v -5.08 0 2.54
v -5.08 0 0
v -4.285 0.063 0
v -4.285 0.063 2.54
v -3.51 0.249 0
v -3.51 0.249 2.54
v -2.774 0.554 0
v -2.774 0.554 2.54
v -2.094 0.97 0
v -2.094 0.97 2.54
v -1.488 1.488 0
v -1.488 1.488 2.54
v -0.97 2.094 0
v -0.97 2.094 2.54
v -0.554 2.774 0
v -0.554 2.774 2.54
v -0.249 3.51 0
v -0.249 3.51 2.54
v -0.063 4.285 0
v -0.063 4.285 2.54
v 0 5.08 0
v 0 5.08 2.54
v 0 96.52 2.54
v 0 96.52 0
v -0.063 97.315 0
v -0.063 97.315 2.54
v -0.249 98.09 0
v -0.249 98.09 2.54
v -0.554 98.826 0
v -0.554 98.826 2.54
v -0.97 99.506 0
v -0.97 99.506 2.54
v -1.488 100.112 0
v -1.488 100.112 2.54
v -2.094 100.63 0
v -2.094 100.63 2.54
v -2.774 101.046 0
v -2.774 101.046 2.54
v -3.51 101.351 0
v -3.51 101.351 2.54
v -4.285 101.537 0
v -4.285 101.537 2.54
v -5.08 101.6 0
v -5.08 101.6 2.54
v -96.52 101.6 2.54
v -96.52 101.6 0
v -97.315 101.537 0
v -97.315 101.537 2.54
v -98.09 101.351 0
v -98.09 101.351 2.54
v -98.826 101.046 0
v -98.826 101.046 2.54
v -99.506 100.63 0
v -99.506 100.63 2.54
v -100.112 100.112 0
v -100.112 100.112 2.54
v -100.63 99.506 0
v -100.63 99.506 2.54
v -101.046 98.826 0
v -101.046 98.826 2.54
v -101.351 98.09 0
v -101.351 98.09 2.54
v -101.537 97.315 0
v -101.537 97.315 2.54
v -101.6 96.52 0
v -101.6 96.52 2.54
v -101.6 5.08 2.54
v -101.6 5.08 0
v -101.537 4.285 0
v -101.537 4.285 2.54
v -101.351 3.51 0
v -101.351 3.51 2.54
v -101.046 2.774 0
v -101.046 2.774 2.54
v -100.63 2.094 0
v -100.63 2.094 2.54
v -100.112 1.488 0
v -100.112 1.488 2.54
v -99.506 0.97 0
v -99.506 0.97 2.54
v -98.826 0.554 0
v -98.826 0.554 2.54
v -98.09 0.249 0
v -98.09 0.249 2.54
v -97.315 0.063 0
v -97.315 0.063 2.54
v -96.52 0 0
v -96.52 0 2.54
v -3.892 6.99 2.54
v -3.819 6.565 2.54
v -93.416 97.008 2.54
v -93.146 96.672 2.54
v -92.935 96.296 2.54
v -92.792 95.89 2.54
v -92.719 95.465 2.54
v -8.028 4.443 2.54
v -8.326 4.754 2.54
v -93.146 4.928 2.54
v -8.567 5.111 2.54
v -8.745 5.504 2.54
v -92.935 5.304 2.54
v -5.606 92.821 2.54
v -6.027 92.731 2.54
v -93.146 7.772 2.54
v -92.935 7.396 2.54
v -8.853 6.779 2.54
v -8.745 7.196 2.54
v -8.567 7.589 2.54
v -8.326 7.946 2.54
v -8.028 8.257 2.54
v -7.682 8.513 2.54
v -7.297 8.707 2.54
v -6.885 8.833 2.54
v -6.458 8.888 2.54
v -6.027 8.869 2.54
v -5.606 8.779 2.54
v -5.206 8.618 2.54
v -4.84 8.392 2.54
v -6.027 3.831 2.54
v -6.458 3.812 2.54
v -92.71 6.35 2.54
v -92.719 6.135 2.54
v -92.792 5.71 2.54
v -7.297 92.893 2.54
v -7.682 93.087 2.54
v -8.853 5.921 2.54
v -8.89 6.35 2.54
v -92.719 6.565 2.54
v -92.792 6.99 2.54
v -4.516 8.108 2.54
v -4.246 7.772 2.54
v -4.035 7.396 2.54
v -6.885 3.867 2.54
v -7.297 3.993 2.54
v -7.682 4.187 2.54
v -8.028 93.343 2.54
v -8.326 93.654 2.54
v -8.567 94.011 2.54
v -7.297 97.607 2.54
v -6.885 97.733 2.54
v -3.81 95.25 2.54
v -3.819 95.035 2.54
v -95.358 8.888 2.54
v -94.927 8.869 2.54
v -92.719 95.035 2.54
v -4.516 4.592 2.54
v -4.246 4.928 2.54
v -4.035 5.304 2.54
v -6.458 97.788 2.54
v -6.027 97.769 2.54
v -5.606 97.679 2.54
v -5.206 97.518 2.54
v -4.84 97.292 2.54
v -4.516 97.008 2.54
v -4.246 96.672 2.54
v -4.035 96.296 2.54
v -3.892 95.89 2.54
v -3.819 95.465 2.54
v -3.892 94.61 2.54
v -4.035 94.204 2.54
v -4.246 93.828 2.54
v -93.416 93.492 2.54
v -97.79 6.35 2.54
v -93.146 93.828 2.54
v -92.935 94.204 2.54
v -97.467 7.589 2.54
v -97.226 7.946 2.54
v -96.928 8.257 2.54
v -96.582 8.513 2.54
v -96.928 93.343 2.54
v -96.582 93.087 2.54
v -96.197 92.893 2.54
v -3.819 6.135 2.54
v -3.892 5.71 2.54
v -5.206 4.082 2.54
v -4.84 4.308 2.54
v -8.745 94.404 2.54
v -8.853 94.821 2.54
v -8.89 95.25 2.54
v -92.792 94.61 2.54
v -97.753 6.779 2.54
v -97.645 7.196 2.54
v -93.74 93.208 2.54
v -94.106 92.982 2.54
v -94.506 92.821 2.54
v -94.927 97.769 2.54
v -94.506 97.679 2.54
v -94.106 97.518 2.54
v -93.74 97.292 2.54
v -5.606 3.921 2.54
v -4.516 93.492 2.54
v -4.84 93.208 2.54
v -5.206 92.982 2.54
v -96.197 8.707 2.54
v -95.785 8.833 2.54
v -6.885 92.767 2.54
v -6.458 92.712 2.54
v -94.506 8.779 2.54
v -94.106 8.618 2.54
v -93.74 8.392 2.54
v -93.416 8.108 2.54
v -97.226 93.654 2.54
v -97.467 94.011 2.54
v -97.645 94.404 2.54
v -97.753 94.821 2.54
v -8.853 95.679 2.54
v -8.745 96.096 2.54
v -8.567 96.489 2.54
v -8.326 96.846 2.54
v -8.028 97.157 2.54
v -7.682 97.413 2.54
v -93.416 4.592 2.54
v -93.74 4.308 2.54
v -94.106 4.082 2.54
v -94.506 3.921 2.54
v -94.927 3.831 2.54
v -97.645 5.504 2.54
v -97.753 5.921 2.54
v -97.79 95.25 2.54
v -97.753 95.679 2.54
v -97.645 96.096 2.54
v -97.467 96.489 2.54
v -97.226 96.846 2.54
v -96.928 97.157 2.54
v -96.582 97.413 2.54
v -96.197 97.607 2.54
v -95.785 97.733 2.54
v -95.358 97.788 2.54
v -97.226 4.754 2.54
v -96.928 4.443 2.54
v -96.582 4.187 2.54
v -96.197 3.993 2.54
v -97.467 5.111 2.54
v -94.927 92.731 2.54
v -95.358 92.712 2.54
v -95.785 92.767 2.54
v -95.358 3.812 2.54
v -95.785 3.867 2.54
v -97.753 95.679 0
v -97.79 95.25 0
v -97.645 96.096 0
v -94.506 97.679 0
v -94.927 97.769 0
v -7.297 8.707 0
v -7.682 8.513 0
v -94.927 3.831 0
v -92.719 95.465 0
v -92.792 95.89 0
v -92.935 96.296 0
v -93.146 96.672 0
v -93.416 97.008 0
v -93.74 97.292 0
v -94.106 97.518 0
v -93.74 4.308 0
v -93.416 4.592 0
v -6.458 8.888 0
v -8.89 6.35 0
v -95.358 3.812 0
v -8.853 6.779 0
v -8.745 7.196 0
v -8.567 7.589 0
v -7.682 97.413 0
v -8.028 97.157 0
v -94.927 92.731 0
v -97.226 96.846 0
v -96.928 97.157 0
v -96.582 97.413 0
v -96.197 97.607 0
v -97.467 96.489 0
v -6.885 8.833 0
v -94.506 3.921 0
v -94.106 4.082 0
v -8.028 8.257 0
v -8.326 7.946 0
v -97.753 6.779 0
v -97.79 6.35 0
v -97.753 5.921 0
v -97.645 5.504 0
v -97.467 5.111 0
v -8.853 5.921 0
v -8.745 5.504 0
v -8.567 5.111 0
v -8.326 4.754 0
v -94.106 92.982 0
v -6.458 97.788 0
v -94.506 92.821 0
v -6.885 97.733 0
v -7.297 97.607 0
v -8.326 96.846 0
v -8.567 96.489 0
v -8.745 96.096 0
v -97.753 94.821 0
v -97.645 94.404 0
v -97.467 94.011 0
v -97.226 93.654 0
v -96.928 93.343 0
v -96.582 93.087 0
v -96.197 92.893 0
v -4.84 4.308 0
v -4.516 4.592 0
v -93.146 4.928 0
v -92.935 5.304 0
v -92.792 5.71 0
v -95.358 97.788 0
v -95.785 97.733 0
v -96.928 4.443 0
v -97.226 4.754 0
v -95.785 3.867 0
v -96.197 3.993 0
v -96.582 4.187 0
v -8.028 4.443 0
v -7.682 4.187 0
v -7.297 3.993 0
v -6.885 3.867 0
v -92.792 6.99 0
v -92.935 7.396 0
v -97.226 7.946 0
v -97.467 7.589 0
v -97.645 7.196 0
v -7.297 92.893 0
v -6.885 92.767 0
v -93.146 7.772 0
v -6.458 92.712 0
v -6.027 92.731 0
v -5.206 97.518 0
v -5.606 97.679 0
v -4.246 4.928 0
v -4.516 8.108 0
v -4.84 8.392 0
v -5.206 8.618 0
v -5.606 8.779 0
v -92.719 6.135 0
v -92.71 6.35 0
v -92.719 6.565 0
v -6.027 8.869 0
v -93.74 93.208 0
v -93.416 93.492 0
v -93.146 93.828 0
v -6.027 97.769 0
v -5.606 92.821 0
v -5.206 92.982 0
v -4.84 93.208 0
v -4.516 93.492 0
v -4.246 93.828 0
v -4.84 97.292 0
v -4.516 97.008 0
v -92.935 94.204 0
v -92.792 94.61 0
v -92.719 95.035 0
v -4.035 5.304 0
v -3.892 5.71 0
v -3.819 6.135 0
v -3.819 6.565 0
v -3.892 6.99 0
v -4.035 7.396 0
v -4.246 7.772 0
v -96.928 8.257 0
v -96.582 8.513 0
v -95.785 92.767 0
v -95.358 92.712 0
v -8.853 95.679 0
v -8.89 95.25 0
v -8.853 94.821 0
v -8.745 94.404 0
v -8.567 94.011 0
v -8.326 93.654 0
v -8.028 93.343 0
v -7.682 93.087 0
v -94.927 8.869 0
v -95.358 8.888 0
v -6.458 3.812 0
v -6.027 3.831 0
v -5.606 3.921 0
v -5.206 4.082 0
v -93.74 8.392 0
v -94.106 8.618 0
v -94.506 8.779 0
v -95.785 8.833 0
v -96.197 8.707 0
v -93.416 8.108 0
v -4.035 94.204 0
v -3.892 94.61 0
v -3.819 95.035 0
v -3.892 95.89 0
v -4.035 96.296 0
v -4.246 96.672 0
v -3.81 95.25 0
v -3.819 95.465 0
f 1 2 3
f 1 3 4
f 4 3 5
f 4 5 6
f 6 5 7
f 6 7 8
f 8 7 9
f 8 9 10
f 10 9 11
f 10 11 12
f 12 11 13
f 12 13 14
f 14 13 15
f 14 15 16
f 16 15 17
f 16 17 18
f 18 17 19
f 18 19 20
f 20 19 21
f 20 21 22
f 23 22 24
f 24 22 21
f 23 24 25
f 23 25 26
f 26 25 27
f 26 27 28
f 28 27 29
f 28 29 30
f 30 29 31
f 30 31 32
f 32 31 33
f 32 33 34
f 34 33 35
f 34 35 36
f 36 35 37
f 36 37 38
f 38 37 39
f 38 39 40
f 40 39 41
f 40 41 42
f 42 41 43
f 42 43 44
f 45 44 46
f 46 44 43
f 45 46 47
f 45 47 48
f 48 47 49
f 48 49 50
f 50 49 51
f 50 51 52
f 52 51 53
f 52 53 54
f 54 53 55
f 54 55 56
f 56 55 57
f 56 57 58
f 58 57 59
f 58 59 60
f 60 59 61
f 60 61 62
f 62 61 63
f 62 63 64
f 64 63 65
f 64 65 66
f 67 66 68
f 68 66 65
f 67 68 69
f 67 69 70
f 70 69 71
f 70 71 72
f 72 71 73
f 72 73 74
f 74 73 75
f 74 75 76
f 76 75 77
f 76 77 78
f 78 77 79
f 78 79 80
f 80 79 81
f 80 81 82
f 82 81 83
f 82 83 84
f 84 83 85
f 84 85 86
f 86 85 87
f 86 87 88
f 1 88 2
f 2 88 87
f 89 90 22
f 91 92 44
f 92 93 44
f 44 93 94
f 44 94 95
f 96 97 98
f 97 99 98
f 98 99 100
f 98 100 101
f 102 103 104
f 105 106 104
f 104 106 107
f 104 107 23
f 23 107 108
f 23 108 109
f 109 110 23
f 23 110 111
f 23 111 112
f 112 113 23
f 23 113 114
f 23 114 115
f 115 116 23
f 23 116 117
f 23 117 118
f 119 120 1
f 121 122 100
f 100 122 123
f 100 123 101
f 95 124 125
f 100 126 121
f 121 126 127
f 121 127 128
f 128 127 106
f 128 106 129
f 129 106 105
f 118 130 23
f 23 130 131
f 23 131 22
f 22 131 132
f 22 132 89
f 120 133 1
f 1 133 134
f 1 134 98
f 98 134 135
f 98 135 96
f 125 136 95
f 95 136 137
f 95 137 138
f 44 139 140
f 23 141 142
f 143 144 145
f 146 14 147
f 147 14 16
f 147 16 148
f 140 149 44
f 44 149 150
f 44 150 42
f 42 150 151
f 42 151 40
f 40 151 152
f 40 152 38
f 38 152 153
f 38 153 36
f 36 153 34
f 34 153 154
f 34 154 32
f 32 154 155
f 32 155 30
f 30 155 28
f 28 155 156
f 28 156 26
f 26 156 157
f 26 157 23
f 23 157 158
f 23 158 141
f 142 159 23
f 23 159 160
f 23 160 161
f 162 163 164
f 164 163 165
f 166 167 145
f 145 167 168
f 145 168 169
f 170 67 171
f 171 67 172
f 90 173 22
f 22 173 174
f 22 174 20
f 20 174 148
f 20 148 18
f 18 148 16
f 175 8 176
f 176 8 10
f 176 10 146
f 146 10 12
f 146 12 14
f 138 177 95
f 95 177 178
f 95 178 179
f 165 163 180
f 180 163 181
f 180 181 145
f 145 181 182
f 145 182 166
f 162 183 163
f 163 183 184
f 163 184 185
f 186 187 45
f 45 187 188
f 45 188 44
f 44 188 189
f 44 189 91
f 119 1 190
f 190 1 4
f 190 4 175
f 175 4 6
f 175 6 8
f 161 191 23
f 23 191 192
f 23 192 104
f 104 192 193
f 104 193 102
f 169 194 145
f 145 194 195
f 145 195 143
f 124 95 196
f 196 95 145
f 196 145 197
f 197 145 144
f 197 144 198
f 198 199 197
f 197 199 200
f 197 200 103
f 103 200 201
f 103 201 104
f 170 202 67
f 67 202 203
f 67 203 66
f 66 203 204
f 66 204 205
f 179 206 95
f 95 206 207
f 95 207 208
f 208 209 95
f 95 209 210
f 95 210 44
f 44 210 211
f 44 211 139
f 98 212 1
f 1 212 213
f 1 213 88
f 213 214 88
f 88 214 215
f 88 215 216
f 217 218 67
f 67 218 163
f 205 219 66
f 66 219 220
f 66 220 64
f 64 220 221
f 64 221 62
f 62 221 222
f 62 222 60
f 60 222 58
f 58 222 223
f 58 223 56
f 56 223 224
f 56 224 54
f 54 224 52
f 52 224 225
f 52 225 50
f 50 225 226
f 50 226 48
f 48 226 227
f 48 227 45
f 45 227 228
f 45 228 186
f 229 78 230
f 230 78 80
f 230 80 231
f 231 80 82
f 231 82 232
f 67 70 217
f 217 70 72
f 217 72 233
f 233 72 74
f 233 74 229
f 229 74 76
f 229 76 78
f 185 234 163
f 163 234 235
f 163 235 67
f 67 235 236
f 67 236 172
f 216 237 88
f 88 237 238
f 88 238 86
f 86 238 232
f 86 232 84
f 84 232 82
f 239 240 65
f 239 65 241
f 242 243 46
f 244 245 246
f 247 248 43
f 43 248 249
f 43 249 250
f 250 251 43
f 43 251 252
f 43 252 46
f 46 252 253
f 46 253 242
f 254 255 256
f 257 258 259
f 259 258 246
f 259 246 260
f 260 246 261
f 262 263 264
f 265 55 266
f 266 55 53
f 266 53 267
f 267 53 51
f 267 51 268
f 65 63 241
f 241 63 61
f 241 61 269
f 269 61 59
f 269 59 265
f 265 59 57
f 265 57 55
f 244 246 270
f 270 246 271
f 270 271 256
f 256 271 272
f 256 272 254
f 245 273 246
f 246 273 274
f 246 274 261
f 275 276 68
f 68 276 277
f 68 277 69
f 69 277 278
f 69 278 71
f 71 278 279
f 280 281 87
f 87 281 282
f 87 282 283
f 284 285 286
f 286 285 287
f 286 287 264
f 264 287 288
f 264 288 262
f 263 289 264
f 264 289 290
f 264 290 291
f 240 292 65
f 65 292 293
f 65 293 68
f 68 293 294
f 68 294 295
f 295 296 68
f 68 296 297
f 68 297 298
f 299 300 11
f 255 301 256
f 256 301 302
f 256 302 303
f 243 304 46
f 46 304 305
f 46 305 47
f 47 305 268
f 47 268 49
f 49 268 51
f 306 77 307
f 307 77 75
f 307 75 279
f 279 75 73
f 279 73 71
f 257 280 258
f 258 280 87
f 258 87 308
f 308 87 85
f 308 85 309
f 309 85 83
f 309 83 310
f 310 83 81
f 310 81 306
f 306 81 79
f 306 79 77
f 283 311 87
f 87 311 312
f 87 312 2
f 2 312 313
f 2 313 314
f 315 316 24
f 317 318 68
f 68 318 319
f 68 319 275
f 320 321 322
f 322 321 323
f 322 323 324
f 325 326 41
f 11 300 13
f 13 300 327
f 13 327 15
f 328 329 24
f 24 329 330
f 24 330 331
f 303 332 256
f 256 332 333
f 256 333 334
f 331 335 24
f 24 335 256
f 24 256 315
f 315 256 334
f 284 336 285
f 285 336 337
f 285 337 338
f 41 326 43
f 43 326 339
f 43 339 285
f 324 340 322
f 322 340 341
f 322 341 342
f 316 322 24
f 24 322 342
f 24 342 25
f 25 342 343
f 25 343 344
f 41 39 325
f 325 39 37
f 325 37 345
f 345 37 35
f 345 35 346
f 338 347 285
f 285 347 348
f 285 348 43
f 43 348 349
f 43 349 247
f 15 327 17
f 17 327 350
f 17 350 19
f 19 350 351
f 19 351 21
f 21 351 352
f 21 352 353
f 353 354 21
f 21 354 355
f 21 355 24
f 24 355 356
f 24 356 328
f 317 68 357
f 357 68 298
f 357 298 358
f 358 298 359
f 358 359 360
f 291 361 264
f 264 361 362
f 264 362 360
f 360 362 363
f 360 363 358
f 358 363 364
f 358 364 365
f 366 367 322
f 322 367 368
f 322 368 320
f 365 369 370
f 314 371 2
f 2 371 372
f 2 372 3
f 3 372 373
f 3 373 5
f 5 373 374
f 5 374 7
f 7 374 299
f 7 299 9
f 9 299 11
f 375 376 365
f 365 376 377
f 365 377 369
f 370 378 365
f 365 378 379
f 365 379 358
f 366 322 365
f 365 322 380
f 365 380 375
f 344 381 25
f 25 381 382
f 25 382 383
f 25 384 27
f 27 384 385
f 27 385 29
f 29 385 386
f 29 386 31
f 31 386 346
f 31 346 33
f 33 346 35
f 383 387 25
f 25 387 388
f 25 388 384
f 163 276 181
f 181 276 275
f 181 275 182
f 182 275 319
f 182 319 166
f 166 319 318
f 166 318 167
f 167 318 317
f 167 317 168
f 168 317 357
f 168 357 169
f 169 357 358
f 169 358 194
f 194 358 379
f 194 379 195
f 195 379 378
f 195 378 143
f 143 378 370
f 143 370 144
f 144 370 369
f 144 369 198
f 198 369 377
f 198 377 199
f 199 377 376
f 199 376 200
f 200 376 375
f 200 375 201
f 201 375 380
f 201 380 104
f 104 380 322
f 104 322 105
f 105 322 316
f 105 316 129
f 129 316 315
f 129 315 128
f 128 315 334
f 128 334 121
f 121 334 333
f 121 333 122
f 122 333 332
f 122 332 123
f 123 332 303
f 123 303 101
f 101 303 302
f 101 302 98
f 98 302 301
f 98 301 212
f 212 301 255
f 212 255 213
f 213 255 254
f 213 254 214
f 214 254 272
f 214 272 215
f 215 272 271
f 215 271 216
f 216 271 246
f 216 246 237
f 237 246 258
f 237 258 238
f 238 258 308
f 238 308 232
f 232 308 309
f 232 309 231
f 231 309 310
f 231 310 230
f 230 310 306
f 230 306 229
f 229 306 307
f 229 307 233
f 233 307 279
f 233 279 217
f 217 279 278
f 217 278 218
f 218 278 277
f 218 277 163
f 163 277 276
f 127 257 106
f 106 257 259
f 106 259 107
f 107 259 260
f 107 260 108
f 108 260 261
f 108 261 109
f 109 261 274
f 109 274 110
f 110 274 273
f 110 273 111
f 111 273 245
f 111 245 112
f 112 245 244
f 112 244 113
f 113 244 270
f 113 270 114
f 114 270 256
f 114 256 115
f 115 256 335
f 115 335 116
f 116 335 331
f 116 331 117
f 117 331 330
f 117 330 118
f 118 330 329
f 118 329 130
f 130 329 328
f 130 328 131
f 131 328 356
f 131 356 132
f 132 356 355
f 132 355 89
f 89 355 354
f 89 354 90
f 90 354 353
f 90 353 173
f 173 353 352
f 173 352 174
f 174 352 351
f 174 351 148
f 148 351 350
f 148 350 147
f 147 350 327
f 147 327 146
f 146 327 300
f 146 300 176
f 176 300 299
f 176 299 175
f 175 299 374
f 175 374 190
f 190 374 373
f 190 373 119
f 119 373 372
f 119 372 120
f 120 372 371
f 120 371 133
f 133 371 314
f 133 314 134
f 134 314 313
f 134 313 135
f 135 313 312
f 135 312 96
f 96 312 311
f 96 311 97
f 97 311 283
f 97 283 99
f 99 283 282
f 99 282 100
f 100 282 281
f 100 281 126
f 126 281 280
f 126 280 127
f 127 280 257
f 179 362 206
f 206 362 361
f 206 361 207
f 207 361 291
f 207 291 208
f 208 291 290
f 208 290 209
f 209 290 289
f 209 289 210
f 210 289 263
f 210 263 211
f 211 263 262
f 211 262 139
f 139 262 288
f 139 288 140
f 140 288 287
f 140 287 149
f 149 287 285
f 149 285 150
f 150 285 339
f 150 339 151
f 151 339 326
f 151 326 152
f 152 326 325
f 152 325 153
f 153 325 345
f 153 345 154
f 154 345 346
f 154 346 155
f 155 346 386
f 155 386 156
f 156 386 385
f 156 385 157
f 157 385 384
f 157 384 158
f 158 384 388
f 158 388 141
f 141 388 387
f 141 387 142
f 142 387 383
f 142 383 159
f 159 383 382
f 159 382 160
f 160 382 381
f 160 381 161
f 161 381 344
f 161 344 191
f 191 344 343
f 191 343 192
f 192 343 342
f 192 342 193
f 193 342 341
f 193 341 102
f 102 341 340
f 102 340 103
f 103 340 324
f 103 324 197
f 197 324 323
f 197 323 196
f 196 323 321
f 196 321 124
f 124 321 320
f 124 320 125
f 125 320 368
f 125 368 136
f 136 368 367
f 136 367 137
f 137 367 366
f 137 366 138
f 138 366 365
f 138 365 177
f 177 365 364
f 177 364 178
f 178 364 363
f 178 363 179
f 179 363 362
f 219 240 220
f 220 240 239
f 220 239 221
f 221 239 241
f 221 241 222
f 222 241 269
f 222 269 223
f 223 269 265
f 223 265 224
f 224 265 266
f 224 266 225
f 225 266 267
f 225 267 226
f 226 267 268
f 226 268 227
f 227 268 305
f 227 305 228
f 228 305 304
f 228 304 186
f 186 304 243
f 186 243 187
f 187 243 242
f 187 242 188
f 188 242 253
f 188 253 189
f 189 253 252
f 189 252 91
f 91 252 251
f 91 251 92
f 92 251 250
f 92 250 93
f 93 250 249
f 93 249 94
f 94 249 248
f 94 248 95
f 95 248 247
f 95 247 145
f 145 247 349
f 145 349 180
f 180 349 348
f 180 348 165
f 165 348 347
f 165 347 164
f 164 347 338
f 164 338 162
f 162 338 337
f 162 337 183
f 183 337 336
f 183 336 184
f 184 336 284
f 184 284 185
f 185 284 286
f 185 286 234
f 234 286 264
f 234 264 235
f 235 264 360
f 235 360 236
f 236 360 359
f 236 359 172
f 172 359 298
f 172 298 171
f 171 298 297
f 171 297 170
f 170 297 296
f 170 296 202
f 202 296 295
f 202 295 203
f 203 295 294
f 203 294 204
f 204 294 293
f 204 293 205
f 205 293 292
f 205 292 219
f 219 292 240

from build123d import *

# Parameters (mm, degrees)
BOSS_EXTRUDE1_DEPTH = 2.54
SKETCH4_R           = 2.54
CUT_EXTRUDE2_DEPTH  = 2.54


with BuildPart() as part:
    # Sketch1 → Boss-Extrude1 (new body)
    with BuildSketch(Plane.XY):
        with BuildLine():
            Line((-96.52, 0), (-5.08, 0))
            ThreePointArc((-5.08, 0), (-1.487897552, 1.487897552), (0, 5.08))
            Line((0, 5.08), (0, 96.52))
            ThreePointArc((0, 96.52), (-1.487897552, 100.112102448), (-5.08, 101.6))
            Line((-5.08, 101.6), (-96.52, 101.6))
            ThreePointArc((-96.52, 101.6), (-100.112102448, 100.112102448), (-101.6, 96.52))
            Line((-101.6, 96.52), (-101.6, 5.08))
            ThreePointArc((-101.6, 5.08), (-100.112102448, 1.487897552), (-96.52, 0))
        make_face()
    extrude(amount=BOSS_EXTRUDE1_DEPTH)

    # Sketch4 → Cut-Extrude2 (cut)
    with BuildSketch(Plane.XY):
        with Locations((-95.25, 6.35)):
            Circle(SKETCH4_R)
        with Locations(Location((-6.35, 6.35, 0), (0, 0, 180))):
            Circle(SKETCH4_R)
        with Locations((-6.35, 95.25)):
            Circle(SKETCH4_R)
        with Locations(Location((-95.25, 95.25, 0), (0, 0, 180))):
            Circle(SKETCH4_R)
    extrude(amount=CUT_EXTRUDE2_DEPTH, mode=Mode.SUBTRACT)


solid = part.part
